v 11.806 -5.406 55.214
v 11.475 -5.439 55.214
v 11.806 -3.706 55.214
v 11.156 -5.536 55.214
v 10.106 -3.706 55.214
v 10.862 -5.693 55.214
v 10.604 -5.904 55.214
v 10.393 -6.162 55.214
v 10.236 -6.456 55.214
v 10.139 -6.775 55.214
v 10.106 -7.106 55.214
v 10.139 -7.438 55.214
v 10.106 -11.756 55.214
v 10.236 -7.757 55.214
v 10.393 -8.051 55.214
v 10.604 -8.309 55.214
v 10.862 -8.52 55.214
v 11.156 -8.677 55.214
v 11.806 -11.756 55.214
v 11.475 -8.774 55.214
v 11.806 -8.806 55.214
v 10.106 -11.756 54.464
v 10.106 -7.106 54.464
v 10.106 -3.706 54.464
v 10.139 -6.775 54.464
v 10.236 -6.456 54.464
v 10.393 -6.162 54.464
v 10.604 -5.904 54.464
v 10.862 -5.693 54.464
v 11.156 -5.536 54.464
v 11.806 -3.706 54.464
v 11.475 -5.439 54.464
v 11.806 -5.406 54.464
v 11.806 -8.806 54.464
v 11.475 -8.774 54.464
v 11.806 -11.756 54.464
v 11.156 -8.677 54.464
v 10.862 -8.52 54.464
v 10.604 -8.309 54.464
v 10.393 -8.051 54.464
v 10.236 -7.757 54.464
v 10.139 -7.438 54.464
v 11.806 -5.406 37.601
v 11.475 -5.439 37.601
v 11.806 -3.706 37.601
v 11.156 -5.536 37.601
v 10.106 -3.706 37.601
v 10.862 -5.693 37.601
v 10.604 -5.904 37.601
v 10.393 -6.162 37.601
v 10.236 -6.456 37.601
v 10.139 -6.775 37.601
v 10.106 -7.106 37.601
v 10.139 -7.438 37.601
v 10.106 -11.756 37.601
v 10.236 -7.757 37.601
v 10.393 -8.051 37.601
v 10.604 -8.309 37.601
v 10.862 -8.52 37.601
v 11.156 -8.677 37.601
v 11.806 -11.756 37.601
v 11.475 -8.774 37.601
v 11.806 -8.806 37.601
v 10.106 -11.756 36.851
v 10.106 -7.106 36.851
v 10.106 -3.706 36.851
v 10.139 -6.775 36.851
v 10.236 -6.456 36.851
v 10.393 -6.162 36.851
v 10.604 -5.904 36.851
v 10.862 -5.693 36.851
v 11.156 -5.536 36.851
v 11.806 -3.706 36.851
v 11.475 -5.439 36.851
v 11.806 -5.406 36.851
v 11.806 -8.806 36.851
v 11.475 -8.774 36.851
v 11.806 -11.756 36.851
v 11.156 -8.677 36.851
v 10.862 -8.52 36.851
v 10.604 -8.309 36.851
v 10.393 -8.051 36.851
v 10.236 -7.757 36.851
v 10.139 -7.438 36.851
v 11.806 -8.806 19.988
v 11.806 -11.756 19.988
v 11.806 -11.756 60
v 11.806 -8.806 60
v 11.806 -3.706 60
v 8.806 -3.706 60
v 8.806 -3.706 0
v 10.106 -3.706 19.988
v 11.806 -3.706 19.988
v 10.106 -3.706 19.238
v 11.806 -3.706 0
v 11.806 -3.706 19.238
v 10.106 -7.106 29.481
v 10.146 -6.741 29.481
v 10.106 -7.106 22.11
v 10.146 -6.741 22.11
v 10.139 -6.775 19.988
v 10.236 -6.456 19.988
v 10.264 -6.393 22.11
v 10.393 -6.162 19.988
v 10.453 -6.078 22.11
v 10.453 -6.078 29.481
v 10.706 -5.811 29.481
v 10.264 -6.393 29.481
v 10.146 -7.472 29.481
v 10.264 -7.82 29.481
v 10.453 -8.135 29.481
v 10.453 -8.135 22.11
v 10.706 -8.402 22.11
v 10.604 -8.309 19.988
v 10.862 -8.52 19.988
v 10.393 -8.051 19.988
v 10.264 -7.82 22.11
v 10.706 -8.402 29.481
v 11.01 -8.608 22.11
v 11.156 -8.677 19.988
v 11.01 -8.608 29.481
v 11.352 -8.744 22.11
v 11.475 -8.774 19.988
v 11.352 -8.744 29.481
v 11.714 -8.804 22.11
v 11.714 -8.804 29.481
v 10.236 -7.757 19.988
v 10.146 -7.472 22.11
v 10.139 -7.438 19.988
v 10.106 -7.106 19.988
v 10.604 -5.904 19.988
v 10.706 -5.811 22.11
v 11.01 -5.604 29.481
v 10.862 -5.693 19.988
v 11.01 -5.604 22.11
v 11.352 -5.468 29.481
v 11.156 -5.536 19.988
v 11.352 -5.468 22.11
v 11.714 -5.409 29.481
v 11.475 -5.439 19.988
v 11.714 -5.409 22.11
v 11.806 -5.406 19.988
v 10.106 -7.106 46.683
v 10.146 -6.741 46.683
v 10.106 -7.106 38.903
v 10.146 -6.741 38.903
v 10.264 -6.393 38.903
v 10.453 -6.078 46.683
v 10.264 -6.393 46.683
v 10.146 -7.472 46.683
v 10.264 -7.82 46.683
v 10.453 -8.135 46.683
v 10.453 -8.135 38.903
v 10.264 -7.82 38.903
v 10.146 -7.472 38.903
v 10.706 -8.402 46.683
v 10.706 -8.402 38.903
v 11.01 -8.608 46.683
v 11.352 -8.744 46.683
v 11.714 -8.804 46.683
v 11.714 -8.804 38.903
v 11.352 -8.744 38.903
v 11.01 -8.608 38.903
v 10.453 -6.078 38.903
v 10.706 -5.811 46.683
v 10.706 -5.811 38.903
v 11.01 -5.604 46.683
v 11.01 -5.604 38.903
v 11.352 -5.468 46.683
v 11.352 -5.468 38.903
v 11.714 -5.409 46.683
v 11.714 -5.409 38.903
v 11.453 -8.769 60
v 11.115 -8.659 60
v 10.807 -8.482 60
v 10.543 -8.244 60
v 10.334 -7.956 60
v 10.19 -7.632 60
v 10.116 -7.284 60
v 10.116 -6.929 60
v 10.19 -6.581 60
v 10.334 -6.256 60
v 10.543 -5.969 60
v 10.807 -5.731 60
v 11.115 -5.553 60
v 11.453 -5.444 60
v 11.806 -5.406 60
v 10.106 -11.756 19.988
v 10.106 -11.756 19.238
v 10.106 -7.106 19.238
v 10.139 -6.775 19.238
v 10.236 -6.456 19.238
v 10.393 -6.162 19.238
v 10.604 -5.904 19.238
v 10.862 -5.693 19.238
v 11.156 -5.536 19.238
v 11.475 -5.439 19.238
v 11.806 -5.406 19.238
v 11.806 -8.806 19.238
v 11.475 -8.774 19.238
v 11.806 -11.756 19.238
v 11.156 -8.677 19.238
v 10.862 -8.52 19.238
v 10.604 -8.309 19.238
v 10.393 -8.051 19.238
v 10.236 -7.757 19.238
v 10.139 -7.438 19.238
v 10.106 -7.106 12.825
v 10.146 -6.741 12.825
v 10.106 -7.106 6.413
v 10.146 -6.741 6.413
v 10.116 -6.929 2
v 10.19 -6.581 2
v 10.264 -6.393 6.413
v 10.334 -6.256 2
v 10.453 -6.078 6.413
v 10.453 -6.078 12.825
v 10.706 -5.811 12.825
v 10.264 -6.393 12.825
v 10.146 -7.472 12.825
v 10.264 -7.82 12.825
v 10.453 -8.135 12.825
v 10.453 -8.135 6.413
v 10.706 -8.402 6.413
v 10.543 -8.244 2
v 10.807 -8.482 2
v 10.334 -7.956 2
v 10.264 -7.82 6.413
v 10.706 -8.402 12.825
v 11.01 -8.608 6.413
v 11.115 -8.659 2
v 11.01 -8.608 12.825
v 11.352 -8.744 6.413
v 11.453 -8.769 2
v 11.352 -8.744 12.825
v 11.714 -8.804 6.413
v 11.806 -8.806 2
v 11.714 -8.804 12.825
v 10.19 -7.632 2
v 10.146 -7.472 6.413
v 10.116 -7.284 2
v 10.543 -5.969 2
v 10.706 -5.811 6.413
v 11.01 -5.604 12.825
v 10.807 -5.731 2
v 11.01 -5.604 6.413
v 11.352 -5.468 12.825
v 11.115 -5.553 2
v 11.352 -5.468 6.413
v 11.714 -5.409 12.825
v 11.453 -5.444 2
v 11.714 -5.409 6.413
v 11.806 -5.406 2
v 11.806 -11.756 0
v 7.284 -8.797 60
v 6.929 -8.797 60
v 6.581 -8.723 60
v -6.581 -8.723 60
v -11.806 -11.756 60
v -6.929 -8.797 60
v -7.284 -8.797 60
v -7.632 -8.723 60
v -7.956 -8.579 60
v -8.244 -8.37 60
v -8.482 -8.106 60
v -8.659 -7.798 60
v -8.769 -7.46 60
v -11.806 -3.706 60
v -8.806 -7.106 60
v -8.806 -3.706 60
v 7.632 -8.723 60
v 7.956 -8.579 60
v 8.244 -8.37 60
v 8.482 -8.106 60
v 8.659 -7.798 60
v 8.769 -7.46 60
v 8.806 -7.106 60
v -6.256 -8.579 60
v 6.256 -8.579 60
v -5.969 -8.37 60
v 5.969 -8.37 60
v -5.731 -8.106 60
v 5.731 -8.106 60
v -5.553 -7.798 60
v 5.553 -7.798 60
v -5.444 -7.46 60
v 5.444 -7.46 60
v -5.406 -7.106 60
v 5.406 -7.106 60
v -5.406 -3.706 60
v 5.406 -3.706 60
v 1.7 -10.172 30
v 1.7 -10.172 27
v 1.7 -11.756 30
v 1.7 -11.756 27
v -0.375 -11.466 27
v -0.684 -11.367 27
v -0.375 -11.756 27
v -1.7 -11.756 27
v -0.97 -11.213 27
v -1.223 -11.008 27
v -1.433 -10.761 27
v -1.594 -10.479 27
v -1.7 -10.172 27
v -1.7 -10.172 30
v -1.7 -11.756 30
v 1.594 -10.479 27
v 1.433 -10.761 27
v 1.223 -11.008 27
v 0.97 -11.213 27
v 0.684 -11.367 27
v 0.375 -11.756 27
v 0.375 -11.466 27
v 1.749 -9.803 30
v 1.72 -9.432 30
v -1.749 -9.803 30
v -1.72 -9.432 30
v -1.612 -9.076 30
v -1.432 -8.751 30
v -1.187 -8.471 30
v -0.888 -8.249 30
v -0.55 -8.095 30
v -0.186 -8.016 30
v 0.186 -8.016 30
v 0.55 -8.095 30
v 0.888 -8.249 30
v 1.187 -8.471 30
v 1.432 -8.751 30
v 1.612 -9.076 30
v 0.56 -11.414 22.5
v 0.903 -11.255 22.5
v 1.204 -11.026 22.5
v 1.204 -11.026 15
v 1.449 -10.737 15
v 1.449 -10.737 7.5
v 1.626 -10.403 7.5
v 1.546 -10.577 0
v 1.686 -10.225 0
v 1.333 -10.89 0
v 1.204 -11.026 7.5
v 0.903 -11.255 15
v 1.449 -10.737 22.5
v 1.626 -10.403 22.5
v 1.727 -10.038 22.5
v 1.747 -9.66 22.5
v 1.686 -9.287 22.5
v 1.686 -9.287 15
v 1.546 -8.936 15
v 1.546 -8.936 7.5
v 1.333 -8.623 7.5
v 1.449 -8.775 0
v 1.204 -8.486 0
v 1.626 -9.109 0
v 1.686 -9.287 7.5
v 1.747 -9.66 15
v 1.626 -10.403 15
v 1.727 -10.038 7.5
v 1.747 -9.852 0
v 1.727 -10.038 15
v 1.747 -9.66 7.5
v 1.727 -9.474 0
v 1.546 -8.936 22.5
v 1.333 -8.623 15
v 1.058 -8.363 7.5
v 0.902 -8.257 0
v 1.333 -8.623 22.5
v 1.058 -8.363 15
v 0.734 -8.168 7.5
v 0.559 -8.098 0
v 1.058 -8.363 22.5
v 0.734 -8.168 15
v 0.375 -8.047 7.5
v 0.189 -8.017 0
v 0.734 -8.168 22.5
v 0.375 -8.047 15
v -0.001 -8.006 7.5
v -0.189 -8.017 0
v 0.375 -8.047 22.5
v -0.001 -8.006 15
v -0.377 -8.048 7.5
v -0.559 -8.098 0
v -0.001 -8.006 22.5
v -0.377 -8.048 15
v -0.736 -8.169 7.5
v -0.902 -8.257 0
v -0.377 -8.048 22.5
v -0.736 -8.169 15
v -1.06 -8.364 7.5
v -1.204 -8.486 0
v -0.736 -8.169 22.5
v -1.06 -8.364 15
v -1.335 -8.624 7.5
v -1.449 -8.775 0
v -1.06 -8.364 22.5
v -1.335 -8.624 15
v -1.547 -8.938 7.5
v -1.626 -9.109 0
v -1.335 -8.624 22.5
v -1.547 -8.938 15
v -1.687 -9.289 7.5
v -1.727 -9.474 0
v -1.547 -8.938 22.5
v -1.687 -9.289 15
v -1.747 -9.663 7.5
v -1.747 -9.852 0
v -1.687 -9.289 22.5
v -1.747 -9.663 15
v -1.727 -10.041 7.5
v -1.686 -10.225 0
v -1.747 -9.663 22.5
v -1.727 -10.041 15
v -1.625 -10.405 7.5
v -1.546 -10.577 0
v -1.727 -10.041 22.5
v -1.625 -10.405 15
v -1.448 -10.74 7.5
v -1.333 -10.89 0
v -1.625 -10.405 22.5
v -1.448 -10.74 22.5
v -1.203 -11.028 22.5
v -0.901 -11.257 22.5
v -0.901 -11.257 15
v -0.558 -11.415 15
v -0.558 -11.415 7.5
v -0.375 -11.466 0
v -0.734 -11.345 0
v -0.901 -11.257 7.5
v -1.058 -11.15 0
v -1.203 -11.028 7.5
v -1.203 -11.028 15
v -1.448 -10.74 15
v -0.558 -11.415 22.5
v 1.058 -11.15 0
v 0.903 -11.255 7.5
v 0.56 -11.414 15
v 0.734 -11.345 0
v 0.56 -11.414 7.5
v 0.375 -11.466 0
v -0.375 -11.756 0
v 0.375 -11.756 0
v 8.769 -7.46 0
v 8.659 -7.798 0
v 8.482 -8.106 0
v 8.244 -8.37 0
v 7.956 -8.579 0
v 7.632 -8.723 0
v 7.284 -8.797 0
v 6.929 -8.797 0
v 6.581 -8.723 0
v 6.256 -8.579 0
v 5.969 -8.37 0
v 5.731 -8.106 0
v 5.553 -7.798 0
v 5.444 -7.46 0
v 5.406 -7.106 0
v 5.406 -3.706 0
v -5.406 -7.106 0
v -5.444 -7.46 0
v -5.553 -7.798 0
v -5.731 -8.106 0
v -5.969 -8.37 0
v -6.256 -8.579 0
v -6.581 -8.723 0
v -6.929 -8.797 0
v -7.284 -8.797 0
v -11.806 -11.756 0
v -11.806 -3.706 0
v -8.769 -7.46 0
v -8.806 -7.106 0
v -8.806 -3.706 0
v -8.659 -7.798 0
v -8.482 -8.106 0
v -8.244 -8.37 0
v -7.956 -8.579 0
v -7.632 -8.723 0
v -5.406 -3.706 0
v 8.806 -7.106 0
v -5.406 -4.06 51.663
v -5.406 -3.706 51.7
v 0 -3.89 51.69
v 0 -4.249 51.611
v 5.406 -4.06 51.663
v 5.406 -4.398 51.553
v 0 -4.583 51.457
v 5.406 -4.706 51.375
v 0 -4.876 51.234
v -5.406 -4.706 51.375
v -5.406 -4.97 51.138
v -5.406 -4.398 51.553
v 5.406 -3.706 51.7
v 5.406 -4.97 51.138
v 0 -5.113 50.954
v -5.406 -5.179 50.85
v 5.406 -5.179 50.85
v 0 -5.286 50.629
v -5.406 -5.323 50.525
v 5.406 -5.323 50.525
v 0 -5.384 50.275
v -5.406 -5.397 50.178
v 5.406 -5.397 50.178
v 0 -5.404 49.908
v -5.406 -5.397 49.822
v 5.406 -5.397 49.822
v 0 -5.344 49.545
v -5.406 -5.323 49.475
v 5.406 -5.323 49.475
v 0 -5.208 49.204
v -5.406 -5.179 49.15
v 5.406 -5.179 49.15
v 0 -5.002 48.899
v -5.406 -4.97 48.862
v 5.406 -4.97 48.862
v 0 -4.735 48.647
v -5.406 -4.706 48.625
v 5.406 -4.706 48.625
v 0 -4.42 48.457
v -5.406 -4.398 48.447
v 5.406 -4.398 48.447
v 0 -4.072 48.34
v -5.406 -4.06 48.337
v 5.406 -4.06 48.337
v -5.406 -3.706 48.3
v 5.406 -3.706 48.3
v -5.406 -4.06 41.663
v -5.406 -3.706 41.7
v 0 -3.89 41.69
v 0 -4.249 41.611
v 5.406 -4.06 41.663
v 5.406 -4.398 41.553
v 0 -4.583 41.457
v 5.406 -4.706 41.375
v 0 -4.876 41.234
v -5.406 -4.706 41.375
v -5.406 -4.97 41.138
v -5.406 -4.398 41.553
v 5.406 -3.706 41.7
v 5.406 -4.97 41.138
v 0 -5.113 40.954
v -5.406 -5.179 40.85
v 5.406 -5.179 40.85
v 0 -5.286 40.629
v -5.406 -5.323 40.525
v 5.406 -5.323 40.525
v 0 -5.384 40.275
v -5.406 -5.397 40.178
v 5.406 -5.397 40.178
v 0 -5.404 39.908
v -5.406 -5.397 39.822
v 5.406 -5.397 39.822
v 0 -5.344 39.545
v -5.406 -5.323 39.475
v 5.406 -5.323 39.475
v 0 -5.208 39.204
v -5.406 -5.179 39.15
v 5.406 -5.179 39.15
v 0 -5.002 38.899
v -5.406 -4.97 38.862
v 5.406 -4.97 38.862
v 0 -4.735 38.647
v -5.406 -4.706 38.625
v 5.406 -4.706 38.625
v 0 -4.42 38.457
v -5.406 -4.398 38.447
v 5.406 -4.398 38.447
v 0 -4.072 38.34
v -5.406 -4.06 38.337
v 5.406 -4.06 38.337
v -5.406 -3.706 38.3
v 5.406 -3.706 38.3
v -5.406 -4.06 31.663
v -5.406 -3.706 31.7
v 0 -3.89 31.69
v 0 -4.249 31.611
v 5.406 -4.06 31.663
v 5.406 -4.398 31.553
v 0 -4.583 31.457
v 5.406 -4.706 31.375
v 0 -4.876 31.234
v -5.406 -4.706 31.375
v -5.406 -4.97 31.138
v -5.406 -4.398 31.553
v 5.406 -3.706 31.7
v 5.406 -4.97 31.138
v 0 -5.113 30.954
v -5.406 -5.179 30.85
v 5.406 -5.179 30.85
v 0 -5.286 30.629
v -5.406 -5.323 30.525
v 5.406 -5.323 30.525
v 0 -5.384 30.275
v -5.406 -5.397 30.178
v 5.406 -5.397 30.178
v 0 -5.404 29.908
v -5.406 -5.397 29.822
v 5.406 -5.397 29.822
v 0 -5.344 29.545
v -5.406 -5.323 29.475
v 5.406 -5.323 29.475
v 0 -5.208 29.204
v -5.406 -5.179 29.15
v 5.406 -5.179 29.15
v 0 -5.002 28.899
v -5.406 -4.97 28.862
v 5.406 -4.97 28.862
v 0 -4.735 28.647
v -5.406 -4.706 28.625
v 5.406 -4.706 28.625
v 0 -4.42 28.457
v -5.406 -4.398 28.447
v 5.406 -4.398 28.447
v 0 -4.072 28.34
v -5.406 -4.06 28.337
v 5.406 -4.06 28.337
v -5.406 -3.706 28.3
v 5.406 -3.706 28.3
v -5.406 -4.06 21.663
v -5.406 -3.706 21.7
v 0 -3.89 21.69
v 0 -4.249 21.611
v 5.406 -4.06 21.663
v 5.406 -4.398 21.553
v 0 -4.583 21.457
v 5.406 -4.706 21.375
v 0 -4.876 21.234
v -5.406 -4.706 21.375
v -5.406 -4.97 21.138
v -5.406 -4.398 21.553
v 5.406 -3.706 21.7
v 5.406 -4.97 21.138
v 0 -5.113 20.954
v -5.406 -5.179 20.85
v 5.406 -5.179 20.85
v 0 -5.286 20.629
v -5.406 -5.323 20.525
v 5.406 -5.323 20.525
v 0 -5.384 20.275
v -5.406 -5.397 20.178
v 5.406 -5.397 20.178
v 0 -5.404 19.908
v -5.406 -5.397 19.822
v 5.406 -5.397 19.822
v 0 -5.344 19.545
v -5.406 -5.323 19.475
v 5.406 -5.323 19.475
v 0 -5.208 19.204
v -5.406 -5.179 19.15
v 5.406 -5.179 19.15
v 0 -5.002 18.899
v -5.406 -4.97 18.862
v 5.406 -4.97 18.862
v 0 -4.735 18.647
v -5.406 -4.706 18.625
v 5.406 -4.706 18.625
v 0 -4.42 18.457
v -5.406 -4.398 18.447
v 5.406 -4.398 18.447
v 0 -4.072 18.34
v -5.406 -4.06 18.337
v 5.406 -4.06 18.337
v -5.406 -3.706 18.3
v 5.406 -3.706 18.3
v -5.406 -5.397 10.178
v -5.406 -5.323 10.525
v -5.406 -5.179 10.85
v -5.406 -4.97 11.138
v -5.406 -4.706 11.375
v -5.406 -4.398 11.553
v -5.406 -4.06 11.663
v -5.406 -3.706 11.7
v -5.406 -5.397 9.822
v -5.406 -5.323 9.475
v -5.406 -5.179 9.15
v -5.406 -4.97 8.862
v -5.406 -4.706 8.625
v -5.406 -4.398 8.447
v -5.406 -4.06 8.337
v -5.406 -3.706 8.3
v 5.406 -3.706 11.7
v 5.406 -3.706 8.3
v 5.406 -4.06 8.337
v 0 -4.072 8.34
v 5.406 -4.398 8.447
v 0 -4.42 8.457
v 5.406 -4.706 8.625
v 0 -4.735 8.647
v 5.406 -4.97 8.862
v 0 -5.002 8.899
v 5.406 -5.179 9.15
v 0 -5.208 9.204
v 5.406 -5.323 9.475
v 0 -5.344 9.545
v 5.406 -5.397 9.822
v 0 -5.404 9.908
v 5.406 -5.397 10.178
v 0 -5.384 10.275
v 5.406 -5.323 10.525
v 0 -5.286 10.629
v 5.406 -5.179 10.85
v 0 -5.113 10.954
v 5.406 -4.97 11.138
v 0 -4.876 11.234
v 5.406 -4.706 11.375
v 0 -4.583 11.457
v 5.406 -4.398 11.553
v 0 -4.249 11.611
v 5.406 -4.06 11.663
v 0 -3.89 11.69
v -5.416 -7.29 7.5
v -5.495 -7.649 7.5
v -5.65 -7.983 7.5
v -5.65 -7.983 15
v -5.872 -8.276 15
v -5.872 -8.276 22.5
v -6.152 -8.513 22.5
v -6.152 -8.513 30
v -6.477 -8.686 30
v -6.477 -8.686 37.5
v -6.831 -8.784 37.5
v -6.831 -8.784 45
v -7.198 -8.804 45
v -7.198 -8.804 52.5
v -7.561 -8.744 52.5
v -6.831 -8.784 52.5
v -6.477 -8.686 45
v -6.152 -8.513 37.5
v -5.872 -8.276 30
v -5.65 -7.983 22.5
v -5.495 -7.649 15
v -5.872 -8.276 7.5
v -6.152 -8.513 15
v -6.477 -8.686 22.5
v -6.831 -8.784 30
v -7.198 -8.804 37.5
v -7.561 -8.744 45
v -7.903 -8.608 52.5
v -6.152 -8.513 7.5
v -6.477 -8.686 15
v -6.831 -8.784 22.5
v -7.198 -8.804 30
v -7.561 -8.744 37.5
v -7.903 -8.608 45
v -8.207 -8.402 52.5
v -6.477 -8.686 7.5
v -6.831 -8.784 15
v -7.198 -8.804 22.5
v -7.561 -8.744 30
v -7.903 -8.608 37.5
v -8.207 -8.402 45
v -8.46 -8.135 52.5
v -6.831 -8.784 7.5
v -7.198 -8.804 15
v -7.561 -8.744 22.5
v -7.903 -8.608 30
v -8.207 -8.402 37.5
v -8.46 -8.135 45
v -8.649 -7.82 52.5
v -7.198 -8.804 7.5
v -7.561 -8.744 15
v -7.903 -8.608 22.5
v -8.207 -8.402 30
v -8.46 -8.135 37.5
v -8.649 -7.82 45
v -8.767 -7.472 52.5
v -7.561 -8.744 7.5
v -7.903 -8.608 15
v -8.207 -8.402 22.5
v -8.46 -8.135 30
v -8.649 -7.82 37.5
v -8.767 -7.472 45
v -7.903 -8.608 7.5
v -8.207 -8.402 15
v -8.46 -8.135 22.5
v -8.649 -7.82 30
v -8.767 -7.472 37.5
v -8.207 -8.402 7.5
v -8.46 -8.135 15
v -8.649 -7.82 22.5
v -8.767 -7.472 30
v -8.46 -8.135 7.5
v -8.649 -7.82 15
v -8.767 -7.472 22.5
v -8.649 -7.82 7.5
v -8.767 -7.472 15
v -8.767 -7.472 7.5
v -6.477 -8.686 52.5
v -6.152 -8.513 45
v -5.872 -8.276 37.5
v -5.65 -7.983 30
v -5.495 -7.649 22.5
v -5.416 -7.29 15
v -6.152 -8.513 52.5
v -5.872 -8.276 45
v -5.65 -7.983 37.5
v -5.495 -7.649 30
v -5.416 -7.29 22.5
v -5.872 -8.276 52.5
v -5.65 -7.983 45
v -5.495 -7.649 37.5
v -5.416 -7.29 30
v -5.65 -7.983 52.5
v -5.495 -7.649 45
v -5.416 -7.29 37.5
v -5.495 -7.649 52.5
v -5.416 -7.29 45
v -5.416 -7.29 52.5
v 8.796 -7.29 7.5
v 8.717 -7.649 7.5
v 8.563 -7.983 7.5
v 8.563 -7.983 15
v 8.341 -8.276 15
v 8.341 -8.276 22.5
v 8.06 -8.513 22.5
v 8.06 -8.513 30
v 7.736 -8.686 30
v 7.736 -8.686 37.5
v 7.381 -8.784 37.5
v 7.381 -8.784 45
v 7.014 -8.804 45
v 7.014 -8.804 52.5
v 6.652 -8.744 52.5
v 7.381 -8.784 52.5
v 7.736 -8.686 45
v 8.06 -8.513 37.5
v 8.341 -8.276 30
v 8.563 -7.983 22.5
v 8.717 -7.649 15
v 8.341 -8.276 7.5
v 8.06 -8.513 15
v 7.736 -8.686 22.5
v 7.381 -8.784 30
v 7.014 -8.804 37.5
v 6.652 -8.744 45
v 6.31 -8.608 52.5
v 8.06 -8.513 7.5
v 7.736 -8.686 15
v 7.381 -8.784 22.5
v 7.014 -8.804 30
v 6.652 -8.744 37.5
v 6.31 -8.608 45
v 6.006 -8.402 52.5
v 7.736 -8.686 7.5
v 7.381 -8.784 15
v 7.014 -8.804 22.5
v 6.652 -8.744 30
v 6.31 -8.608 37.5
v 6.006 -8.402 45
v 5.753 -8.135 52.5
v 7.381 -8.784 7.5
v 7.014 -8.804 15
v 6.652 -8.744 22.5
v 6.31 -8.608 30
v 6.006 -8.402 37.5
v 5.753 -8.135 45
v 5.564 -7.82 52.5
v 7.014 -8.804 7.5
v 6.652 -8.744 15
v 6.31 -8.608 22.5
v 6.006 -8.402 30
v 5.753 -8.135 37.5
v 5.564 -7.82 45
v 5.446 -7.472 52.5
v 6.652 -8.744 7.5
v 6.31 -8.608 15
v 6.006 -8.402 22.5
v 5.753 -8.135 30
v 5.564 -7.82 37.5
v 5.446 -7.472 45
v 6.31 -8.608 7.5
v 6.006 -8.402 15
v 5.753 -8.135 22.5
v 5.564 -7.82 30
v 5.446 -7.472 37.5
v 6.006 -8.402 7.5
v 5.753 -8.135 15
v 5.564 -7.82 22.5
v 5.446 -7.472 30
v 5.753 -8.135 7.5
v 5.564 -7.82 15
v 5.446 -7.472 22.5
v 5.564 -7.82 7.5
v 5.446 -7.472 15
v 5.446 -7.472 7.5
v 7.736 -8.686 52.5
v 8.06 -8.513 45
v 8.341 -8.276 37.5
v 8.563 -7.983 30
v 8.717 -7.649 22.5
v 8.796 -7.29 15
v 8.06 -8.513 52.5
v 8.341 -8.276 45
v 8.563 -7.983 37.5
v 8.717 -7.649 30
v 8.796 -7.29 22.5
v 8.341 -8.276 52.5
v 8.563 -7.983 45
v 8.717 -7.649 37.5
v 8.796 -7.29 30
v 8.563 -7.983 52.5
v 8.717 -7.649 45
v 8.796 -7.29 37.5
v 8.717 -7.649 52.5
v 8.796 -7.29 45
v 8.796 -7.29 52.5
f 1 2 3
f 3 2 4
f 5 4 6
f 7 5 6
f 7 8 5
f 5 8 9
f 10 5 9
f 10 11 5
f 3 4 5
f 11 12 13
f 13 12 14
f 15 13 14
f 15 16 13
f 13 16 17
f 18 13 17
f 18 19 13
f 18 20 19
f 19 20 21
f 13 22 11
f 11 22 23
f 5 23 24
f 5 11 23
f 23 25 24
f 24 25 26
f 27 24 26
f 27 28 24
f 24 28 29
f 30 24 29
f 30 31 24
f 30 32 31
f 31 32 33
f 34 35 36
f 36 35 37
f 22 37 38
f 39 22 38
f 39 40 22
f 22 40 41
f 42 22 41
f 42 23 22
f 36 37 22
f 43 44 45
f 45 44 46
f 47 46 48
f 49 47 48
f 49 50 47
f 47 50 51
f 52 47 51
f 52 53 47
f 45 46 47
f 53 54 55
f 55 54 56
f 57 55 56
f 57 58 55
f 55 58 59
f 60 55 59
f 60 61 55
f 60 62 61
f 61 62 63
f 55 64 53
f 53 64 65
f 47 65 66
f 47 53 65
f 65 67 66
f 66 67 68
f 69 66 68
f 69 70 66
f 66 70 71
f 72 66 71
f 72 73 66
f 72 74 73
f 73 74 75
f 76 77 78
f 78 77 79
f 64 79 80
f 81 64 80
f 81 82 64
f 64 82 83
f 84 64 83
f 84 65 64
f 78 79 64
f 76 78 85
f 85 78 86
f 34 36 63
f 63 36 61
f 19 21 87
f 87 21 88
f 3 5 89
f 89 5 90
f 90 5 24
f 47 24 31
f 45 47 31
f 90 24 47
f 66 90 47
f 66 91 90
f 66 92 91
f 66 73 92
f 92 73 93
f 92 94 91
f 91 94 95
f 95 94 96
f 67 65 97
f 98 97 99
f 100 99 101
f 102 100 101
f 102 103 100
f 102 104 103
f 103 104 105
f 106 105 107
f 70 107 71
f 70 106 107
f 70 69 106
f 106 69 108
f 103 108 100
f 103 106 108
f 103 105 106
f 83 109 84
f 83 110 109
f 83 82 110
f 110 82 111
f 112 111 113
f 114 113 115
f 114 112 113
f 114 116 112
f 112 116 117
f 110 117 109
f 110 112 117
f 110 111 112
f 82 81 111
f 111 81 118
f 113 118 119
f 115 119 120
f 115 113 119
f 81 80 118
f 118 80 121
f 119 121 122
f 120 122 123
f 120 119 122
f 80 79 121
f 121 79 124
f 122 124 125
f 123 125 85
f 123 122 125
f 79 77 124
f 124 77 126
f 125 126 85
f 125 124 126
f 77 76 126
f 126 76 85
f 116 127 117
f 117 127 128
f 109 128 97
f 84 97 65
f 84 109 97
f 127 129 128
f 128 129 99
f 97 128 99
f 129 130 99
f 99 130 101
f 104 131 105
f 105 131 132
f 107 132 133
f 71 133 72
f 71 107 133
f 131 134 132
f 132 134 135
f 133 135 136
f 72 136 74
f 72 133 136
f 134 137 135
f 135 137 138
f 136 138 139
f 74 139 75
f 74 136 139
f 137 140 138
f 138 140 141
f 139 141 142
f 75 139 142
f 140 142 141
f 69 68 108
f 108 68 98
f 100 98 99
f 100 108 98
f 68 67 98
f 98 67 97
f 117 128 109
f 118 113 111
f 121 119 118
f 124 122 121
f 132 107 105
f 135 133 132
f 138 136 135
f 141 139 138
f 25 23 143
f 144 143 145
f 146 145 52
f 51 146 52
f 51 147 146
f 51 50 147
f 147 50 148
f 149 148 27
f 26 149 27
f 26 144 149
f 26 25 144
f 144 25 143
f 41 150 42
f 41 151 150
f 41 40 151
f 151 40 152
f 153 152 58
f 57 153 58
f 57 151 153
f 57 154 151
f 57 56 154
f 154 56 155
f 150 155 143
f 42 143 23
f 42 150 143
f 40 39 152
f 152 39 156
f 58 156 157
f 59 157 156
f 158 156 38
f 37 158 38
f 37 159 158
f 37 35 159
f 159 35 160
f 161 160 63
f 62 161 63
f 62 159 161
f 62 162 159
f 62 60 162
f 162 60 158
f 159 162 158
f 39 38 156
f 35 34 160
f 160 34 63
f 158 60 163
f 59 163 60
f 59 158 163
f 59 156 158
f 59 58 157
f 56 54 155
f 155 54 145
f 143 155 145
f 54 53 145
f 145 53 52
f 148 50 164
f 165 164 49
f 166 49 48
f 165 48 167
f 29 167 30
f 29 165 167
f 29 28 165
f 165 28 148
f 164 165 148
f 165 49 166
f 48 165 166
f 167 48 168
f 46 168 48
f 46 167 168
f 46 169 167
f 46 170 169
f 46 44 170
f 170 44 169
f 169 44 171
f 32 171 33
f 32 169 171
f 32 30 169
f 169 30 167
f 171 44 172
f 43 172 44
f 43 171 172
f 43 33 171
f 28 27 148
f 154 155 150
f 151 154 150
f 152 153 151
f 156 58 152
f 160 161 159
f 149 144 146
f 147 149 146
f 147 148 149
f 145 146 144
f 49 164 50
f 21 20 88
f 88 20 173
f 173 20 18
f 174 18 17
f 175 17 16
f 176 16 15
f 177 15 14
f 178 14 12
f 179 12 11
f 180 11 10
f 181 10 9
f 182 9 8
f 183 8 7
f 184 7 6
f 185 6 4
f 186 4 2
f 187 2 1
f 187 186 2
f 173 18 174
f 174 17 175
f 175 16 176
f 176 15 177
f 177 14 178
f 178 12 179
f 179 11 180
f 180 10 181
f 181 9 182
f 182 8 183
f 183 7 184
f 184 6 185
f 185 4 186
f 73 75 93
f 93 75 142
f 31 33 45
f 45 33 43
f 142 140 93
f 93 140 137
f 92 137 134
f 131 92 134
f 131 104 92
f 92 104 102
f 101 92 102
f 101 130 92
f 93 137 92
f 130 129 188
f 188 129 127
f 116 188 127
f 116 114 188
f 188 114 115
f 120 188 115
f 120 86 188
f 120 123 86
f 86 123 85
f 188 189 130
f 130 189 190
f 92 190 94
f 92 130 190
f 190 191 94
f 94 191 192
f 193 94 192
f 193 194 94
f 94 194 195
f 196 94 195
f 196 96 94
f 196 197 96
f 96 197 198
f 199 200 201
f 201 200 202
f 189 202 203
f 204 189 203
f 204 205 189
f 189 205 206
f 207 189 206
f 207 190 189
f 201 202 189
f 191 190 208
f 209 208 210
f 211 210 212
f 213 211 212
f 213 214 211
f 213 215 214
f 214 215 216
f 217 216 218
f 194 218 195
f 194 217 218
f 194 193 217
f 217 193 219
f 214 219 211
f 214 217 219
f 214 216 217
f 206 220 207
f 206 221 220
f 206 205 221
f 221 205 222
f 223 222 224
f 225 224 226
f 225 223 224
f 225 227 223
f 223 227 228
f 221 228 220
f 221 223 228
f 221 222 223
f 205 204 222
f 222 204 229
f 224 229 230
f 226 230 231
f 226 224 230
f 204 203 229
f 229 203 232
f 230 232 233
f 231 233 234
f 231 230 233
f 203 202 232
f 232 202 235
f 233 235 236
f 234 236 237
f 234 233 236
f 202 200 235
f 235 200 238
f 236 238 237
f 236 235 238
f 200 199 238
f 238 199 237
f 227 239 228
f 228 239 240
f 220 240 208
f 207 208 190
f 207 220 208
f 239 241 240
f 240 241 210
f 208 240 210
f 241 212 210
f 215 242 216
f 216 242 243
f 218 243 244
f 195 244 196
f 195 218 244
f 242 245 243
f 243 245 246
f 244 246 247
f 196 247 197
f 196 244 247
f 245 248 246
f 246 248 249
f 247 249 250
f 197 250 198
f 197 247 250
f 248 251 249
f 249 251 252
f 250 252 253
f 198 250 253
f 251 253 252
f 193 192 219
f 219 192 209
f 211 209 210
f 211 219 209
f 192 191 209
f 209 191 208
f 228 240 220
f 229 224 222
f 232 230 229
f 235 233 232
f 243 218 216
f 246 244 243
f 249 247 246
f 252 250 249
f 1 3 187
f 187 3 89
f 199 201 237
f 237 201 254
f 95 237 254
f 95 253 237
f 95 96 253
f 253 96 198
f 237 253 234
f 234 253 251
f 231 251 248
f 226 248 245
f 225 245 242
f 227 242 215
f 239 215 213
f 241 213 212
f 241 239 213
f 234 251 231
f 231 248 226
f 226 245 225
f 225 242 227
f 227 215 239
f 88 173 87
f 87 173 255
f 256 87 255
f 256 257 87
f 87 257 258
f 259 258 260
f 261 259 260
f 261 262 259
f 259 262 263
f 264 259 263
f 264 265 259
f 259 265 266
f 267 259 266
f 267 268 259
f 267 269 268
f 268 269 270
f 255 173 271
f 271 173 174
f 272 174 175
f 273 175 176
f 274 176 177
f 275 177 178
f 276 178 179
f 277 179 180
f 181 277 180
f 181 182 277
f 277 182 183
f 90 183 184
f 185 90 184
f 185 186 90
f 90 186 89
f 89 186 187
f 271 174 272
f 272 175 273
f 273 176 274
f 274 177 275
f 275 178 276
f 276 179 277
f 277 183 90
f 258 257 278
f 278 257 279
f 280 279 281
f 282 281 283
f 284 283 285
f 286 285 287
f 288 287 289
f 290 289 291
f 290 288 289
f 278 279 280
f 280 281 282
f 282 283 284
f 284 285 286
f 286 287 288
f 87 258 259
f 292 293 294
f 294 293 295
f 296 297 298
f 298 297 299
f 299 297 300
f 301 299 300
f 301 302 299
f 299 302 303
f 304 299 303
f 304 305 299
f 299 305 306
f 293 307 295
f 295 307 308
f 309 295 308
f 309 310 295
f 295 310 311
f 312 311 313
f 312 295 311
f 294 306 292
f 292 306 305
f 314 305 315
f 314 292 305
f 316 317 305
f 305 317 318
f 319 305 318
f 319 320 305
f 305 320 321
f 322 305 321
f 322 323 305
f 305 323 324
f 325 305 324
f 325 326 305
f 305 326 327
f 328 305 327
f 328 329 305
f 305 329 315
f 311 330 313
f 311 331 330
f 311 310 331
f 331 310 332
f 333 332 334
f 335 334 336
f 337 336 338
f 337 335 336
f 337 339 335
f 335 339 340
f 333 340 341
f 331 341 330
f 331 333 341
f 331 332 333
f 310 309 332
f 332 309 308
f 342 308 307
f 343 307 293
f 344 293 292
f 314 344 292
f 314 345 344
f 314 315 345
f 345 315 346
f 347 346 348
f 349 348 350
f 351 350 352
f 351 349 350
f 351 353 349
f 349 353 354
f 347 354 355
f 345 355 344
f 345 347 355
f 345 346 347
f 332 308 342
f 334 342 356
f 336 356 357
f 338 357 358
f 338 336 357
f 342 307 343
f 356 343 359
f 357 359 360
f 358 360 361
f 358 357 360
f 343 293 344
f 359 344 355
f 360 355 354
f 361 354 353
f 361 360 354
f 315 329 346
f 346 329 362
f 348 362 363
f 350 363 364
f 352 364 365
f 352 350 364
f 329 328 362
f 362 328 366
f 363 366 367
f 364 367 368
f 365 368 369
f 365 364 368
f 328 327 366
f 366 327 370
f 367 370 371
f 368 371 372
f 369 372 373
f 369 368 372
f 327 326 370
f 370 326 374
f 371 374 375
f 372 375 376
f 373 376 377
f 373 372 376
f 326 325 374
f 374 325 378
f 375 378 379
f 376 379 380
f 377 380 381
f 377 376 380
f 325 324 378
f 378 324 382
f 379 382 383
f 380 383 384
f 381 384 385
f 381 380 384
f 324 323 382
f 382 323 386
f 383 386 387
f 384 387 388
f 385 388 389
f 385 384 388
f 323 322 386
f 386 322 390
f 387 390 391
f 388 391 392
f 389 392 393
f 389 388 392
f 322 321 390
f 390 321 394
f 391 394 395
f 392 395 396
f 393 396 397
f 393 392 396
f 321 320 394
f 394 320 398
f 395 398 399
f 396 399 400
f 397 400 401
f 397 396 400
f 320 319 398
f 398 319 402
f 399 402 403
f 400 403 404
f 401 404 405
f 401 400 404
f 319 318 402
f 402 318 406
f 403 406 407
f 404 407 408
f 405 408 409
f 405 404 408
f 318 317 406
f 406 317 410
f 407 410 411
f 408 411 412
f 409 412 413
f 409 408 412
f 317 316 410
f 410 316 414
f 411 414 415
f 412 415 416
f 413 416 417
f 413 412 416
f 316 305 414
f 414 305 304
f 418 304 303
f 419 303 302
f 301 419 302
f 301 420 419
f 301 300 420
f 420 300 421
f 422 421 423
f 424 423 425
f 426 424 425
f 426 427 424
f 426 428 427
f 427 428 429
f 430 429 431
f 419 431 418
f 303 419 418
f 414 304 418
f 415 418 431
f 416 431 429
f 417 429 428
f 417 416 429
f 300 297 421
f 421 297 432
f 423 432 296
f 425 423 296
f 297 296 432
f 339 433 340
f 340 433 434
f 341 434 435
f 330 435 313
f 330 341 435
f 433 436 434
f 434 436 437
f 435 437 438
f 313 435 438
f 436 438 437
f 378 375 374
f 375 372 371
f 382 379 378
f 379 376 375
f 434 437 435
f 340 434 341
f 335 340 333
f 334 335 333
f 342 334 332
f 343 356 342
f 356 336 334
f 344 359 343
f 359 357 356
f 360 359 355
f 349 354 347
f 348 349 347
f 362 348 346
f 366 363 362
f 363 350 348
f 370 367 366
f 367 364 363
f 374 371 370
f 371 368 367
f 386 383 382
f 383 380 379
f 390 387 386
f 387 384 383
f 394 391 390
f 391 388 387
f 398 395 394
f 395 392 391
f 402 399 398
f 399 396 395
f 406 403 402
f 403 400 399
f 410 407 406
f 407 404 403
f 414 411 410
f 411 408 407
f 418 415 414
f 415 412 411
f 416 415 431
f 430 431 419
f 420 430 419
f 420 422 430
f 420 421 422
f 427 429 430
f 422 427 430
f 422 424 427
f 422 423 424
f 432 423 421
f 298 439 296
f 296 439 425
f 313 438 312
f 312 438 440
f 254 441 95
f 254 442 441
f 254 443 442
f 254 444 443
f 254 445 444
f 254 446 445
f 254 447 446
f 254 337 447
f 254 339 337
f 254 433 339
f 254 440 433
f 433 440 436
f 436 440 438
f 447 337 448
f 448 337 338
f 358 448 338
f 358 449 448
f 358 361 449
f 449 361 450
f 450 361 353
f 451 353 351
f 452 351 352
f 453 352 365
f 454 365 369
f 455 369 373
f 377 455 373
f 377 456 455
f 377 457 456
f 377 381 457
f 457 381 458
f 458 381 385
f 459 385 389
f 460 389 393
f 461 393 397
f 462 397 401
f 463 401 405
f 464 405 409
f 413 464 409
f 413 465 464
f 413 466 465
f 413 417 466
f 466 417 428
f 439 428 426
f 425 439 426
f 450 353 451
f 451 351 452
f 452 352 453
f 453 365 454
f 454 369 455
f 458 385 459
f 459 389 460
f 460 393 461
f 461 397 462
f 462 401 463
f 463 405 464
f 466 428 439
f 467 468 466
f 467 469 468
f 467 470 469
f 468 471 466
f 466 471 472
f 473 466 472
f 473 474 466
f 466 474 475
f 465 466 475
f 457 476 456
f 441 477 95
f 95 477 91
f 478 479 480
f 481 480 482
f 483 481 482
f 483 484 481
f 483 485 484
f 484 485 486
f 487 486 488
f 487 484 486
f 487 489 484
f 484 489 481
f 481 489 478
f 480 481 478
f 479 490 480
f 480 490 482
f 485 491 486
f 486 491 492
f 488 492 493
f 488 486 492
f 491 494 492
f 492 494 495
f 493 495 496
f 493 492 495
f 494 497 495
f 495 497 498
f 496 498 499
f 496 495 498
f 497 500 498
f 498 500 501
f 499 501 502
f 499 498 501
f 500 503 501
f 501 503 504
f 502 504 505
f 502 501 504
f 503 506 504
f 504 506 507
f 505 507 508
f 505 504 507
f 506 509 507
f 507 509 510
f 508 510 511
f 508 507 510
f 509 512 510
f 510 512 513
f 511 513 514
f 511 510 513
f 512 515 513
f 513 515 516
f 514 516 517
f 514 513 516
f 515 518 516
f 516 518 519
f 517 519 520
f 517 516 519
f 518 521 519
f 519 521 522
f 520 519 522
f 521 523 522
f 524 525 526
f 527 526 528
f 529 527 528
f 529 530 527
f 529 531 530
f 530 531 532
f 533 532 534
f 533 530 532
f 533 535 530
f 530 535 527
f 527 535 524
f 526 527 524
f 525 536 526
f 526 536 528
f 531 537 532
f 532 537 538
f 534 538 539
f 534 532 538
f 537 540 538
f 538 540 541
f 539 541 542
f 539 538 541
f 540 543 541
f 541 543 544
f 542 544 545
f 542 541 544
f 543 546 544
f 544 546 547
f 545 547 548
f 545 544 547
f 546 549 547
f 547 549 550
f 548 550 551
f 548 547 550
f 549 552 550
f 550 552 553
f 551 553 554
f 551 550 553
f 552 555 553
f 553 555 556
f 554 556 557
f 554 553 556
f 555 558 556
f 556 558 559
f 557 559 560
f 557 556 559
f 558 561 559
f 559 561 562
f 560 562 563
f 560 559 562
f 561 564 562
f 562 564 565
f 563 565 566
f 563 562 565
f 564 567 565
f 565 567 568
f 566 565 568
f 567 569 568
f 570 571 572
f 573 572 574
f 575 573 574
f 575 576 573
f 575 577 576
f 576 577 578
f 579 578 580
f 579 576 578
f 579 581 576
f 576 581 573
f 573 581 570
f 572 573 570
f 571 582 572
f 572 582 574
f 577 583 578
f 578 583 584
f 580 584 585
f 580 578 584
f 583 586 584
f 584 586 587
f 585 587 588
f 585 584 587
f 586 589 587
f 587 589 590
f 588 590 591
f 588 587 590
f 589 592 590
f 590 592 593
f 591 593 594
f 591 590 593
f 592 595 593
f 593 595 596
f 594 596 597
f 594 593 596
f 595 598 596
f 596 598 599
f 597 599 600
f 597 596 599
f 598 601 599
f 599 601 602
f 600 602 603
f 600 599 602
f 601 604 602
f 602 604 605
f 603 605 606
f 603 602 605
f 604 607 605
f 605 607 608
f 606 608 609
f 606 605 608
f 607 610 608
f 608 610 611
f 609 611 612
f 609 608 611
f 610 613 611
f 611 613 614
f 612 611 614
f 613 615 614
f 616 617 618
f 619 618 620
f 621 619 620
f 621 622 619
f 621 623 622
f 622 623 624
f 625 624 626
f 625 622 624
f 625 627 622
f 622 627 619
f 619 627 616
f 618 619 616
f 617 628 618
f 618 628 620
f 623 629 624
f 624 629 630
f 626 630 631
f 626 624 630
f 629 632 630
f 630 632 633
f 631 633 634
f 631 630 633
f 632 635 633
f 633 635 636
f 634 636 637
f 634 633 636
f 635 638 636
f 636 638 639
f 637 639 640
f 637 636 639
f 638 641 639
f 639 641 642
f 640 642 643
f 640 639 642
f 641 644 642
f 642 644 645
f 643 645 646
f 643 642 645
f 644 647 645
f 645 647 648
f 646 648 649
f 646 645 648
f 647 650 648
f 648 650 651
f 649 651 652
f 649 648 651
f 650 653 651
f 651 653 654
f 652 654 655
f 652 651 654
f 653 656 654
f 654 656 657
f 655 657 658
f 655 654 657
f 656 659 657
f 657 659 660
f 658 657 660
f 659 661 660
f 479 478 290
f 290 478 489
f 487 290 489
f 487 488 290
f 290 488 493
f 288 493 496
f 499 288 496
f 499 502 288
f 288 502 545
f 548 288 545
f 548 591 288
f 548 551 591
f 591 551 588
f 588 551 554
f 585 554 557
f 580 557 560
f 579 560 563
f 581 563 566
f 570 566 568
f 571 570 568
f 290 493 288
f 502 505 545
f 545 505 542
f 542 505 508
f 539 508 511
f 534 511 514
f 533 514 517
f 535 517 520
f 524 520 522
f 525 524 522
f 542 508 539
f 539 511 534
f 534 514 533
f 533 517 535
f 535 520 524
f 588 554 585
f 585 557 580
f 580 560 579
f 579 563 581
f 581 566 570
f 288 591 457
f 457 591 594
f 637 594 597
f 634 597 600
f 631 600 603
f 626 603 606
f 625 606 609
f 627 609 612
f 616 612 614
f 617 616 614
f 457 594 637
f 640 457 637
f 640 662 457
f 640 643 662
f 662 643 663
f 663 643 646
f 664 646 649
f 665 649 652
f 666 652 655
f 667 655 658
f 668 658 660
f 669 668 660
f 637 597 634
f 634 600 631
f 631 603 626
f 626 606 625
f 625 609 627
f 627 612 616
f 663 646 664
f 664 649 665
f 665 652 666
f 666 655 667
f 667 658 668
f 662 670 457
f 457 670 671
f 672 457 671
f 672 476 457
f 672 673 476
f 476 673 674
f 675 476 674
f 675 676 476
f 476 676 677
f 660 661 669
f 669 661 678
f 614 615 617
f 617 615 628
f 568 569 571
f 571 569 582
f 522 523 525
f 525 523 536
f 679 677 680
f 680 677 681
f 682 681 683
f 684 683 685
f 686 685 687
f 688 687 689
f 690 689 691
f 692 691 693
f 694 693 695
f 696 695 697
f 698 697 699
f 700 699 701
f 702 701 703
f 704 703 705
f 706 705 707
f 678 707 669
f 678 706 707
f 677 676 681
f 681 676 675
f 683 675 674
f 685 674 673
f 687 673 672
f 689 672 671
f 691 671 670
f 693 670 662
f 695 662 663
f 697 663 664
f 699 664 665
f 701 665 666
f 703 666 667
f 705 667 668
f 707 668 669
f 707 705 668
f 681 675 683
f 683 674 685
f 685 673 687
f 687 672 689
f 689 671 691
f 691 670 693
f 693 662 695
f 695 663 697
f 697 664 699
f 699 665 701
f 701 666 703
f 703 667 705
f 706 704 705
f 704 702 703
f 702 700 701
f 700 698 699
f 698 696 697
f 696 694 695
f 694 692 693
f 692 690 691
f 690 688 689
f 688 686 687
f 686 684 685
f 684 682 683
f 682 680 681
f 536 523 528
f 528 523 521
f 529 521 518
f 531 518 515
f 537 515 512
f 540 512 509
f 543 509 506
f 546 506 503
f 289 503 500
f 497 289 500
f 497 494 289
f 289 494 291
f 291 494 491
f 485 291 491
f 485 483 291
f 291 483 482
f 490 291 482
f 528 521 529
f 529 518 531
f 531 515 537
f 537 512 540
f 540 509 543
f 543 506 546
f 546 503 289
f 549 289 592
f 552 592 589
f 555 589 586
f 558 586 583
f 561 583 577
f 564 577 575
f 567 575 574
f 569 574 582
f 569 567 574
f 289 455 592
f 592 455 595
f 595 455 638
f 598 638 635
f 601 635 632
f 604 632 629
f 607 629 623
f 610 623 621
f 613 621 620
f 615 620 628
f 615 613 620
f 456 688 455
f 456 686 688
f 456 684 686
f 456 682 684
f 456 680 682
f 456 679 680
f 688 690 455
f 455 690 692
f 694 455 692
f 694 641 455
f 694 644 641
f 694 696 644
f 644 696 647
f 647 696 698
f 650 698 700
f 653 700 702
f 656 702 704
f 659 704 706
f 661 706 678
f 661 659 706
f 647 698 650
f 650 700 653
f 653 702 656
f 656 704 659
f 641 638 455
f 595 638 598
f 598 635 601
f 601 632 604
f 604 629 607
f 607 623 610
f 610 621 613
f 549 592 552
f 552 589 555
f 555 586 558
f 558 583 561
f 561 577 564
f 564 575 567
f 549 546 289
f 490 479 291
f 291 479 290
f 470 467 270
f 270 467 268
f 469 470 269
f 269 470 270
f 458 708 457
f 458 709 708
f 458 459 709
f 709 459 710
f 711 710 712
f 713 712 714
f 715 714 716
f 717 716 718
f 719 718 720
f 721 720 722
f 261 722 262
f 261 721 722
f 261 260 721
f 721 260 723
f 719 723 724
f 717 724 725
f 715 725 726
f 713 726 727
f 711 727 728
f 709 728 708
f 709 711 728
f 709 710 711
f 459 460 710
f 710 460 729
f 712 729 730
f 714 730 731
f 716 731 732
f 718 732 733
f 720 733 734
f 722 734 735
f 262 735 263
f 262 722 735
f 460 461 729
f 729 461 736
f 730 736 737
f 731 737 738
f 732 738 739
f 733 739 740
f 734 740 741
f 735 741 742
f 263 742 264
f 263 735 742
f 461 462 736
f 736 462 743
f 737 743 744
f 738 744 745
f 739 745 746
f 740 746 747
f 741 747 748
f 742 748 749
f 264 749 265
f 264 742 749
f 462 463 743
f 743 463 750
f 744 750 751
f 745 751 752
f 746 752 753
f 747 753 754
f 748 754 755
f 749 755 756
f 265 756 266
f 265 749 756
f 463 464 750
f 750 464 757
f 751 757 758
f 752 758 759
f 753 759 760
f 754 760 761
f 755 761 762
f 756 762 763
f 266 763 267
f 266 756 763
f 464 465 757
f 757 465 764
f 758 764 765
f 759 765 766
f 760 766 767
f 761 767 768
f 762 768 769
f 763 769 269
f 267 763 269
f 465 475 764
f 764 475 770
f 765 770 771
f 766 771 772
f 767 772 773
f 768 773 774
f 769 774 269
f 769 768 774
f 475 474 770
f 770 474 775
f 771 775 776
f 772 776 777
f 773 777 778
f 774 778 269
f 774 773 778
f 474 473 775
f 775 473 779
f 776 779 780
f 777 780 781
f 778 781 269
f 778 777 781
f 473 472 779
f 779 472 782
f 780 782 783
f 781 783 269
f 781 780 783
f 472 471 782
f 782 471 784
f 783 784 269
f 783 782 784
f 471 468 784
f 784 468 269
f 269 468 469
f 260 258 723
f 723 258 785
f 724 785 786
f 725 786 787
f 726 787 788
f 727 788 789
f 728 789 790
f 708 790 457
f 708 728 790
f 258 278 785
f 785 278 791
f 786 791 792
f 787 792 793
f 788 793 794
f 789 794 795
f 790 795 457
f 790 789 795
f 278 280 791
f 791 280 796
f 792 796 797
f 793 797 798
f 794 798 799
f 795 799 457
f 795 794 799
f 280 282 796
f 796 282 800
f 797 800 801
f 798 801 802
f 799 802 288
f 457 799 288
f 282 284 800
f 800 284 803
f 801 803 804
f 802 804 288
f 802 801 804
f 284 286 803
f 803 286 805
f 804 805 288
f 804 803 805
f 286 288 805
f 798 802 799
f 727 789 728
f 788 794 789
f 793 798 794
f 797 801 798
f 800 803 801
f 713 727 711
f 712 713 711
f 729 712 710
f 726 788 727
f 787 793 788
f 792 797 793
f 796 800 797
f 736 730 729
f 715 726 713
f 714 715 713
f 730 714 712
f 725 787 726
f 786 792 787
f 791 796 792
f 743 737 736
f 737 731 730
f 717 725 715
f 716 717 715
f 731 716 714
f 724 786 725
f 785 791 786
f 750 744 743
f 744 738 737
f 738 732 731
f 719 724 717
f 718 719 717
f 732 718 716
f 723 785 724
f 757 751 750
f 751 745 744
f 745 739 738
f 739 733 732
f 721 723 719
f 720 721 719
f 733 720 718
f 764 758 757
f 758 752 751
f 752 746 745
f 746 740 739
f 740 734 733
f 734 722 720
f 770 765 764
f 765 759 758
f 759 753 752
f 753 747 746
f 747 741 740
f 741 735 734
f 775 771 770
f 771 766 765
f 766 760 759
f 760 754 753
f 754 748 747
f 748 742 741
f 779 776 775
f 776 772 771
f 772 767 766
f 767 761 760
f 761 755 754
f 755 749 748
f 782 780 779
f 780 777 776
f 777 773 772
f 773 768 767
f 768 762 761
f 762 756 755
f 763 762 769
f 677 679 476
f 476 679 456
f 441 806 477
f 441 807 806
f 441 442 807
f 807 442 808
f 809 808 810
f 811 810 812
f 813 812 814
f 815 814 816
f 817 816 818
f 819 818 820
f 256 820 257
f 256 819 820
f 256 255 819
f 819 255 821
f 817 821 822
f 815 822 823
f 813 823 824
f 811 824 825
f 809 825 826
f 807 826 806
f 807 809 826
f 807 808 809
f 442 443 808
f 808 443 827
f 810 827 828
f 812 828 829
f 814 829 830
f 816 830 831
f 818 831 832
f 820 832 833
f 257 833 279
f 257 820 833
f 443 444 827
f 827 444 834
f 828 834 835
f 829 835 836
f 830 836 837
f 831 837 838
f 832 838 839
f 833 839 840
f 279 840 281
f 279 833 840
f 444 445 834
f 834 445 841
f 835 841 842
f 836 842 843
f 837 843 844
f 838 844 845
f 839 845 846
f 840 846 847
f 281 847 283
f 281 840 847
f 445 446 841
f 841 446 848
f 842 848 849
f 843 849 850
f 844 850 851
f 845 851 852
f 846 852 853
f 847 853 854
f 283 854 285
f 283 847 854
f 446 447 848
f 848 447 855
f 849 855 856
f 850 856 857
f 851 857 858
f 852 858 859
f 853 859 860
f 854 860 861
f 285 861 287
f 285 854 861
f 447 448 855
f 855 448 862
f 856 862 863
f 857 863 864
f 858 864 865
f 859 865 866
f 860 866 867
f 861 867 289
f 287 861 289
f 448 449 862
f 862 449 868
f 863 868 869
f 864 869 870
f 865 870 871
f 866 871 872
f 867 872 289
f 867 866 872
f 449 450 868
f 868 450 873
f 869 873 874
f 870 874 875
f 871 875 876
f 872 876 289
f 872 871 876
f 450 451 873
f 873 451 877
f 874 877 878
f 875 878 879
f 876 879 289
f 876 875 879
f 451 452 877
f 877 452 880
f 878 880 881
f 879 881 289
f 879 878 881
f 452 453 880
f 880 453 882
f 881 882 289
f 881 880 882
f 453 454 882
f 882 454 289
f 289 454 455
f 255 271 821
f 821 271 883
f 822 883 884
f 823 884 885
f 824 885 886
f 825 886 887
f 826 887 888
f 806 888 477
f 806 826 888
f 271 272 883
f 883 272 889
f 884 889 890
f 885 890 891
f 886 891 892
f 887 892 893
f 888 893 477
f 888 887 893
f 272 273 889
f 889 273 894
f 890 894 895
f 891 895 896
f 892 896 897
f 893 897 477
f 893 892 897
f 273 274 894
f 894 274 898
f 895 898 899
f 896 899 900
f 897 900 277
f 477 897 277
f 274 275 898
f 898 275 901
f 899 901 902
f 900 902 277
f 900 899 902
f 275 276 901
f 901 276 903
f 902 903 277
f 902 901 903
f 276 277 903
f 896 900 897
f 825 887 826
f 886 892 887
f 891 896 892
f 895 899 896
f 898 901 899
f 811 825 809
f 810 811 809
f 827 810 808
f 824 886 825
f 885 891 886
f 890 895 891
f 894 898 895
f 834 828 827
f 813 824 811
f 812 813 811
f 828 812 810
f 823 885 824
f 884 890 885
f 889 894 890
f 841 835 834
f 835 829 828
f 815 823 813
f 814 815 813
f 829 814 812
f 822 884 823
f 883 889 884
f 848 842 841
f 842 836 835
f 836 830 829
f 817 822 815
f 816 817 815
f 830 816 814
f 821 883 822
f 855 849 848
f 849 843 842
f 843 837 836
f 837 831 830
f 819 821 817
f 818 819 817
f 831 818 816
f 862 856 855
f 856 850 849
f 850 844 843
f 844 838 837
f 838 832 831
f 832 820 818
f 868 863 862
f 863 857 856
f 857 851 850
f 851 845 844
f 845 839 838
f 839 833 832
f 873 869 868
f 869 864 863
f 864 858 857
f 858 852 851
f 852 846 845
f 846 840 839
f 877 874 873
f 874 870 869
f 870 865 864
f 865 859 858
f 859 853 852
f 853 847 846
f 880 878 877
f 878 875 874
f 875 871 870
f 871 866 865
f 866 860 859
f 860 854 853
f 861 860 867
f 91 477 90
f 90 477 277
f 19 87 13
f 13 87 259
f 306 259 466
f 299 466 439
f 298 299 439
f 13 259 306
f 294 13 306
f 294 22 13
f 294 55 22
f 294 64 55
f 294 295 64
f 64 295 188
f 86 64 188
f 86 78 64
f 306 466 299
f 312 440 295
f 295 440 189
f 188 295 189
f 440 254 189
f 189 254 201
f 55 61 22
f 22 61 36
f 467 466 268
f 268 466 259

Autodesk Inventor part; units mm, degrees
ref_plane "YZ Plane" through (0, 0, 0) normal (1, 0, 0) x (0, 1, 0)
ref_plane "XZ Plane" through (0, 0, 0) normal (0, 1, 0) x (-1, 0, 0)
ref_plane "XY Plane" through (0, 0, 0) normal (0, 0, 1) x (1, 0, 0)
sketch "Sketch1" plane through (0, 0, 0) normal (0, 0, 1) x (1, 0, 0)
  circle A0 centre (0, 0) radius 8.35 construction
  arc A1 (-8.8064, -7.1064) -> (-5.4064, -7.1064) centre (-7.1064, -7.1064) ccw
  circle A2 centre (7.1064, -7.1064) radius 1.7 construction
  line L0 (0, 12.3642) -> (0, -15.7353) projected
  line L1 (-7.1064, -8.8064) -> (7.1064, -8.8064) construction
  line L2 (0, 0) -> (7.1064, -7.1064) construction
  line L3 (11.8064, -3.7064) -> (11.8064, -11.7564)
  line L4 (11.8064, -11.7564) -> (-11.8064, -11.7564)
  line L5 (-11.8064, -11.7564) -> (-11.8064, -3.7064)
  circle A3 centre (-7.1064, -3.7064) radius 1.7 construction
  line L6 (-8.8064, -7.1064) -> (-8.8064, -3.7064)
  line L7 (-5.4064, -7.1064) -> (-5.4064, -3.7064)
  line L8 (-11.8064, -3.7064) -> (-8.8064, -3.7064)
  arc A4 (5.4064, -7.1064) -> (8.8064, -7.1064) centre (7.1064, -7.1064) ccw
  line L9 (8.8064, -7.1064) -> (8.8064, -3.7064)
  line L10 (5.4064, -7.1064) -> (5.4064, -3.7064)
  line L11 (-5.4064, -3.7064) -> (5.4064, -3.7064)
  line L12 (8.8064, -3.7064) -> (11.8064, -3.7064)
  dimension "d0" = 16.7
  dimension "d1" = 3.4
  dimension "d4" = 45
  dimension "d5" = 3
  dimension "d6" = 4.65
  dimension "d25" = 17.6129
extrude "Extrusion1" add sketch "Sketch1" along normal blind 60
sketch "Sketch2" plane through (5.4064, -7.1064, 0) normal (1, 0, 0) x (0, 0, -1)
  line L0 (0, -4.65) -> (0, 3.4) projected
  line L1 (0, 3.4) -> (-60, 3.4) projected
  line L2 (-60, -4.65) -> (-60, 3.4) projected
  line L3 (0, -4.65) -> (-60, -4.65) projected
  line L4 (0, 3.4) -> (-60, 3.4) projected
  circle A0 centre (-10, 3.4) radius 1.7
  point P0 (0, 7.1064)
  dimension "d9" = 10
  dimension "d10" = 3.4
extrude "Extrusion2" cut sketch "Sketch2" against normal up to surface (10.8128 mm away) contours A0 L1 | L1 A0
pattern_linear "Rectangular Pattern1" count 5 spacing 10 along (0, 0, 1) of "Extrusion2"
sketch "Sketch3" plane through (0, 0, 0) normal (0, 0, -1) x (-1, 0, 0)
  line L0 (11.8064, -3.7064) -> (11.8064, -11.7564) projected
  line L1 (8.8064, -3.7064) -> (11.8064, -3.7064) projected
  line L2 (8.8064, -7.1064) -> (8.8064, -3.7064) projected
  arc A0 (5.4064, -7.1064) -> (8.8064, -7.1064) centre (7.1064, -7.1064) ccw projected
  line L3 (5.4064, -3.7064) -> (5.4064, -7.1064) projected
  line L4 (-5.4064, -3.7064) -> (5.4064, -3.7064) projected
  line L5 (-5.4064, -7.1064) -> (-5.4064, -3.7064) projected
  arc A1 (-8.8064, -7.1064) -> (-5.4064, -7.1064) centre (-7.1064, -7.1064) ccw projected
  line L6 (-8.8064, -3.7064) -> (-8.8064, -7.1064) projected
  line L7 (-11.8064, -3.7064) -> (-8.8064, -3.7064) projected
  line L8 (-11.8064, -11.7564) -> (-11.8064, -3.7064) projected
  line L9 (11.8064, -11.7564) -> (-11.8064, -11.7564) projected
  arc A2 (0.375, -11.4658) -> (-0.375, -11.4658) centre (0, -9.7564) ccw
  line L10 (-0.375, -11.4658) -> (-0.375, -11.7564)
  line L11 (0.375, -11.4658) -> (0.375, -11.7564)
  point P0 (0, 0)
  dimension "d16" = 3.5
  dimension "d17" = 0.75
  dimension "d20" = 2
extrude "Extrusion3" cut sketch "Sketch3" against normal blind 30 contours L9 L10 A2 L11
sketch "Sketch4" plane through (-11.8064, -11.7564, 60) normal (0, -1, 0) x (1, 0, 0)
  line L0 (12.1814, -30) -> (12.1814, -60) projected
  line L1 (12.1814, -60) -> (23.6128, -60) projected
  line L2 (23.6128, -60) -> (23.6128, 0) projected
  line L3 (0, 0) -> (23.6128, 0) projected
  line L4 (0, -60) -> (0, 0) projected
  line L5 (0, -60) -> (11.4314, -60) projected
  line L6 (11.4314, -60) -> (11.4314, -30) projected
  line L7 (11.4314, -30) -> (12.1814, -30) projected
  line L8 (13.5064, -30) -> (10.1064, -30)
  line L9 (10.1064, -30) -> (10.1064, -33)
  line L10 (10.1064, -33) -> (13.5064, -33)
  line L11 (13.5064, -33) -> (13.5064, -30)
  line L12 (11.8064, 12) -> (11.8064, -72) projected
  point P0 (11.8064, -60)
  dimension "d21" = 3.4
  dimension "d22" = 3
extrude "Extrusion4" cut sketch "Sketch4" against normal blind 2 contours L8 L11 L10 L0 | L0 L10 L12 L7 | L12 L10 L6 L7 | L6 L10 L9 L8
sketch "Sketch5" plane through (0, 0, 0) normal (0, 0, -1) x (-1, 0, 0)
  line L0 (-11.8064, -11.7564) -> (-11.8064, -3.7064) projected
  circle A0 centre (-11.8064, -7.1064) radius 1.7
  line L1 (-0.375, -11.7564) -> (-11.8064, -11.7564) projected
  line L2 (-11.8064, -3.7064) -> (-8.8064, -3.7064) projected
  point P0 (0, 0)
  dimension "d26" = 3.4
  dimension "d28" = 3.4
extrude "Extrusion5" cut sketch "Sketch5" against normal up to surface (60 mm away)
sketch "Sketch6" plane through (11.8064, -11.7564, 60) normal (1, 0, 0) x (0, 0, -1)
  line L0 (60, 0) -> (0, 0) projected
  line L1 (60, 8.05) -> (0, 8.05) projected
  line L2 (40.7622, 0) -> (40.0122, 0)
  line L3 (40.0122, 0) -> (40.0122, 8.05)
  line L4 (40.0122, 8.05) -> (40.7622, 8.05)
  line L5 (40.7622, 8.05) -> (40.7622, 0)
  line L6 (60, 0) -> (0, 0) construction
  line L7 (40.3872, 0) -> (40.3872, 8.05) construction
  line L8 (60, 8.05) -> (60, 4.65) projected
  line L9 (60, 2.95) -> (0, 2.95) projected
  line L10 (60, 6.35) -> (58, 6.35)
  line L11 (58, 6.35) -> (58, 2.95)
  line L12 (58, 2.95) -> (60, 2.95)
  line L13 (60, 2.95) -> (60, 6.35)
  point P0 (60, 11.7564)
  dimension "d31" = 0.75
  dimension "d32" = 2
  dimension "d33" = 17.6129
extrude "Extrusion6" add sketch "Sketch6" against normal blind 1.7 contours L11 L10 L8 L13 L9
extrude "Extrusion7" cut sketch "Sketch6" against normal blind 1.7 contours L0 L3 L9 L5 | L9 L3 L1 L5
pattern_linear "Rectangular Pattern2" count 5 spacing 17.6128 along (0, 0, 1) of "Extrusion7"
sketch "Sketch7" plane through (-5.4064, -3.7064, 11.7) normal (0, 1, 0) x (1, 0, 0)
  point P0 (5.4064, 11.7)
equation "\"d0\" = marbleSize"
equation "\"d1\" = trackDiameter"
equation "\"d10\" = trackDiameter"
equation "\"d21\" = trackDiameter"
equation "\"d26\" = trackDiameter"
equation "\"d28\" = trackDiameter"
equation "\"d29\" = 0.5 * trackDiameter"
equation "\"d33\" = d25"
equation "\"d34\" = 0.5 * trackDiameter"
equation "\"d36\" = 0.5 * trackDiameter"
equation "\"d40\" = d25"
equation "\"marbleSize\" = 16.7"
equation "\"trackDiameter\" = 3.4"
equation "\"numGroove\" = 5"
properties part number "Track Builder"
